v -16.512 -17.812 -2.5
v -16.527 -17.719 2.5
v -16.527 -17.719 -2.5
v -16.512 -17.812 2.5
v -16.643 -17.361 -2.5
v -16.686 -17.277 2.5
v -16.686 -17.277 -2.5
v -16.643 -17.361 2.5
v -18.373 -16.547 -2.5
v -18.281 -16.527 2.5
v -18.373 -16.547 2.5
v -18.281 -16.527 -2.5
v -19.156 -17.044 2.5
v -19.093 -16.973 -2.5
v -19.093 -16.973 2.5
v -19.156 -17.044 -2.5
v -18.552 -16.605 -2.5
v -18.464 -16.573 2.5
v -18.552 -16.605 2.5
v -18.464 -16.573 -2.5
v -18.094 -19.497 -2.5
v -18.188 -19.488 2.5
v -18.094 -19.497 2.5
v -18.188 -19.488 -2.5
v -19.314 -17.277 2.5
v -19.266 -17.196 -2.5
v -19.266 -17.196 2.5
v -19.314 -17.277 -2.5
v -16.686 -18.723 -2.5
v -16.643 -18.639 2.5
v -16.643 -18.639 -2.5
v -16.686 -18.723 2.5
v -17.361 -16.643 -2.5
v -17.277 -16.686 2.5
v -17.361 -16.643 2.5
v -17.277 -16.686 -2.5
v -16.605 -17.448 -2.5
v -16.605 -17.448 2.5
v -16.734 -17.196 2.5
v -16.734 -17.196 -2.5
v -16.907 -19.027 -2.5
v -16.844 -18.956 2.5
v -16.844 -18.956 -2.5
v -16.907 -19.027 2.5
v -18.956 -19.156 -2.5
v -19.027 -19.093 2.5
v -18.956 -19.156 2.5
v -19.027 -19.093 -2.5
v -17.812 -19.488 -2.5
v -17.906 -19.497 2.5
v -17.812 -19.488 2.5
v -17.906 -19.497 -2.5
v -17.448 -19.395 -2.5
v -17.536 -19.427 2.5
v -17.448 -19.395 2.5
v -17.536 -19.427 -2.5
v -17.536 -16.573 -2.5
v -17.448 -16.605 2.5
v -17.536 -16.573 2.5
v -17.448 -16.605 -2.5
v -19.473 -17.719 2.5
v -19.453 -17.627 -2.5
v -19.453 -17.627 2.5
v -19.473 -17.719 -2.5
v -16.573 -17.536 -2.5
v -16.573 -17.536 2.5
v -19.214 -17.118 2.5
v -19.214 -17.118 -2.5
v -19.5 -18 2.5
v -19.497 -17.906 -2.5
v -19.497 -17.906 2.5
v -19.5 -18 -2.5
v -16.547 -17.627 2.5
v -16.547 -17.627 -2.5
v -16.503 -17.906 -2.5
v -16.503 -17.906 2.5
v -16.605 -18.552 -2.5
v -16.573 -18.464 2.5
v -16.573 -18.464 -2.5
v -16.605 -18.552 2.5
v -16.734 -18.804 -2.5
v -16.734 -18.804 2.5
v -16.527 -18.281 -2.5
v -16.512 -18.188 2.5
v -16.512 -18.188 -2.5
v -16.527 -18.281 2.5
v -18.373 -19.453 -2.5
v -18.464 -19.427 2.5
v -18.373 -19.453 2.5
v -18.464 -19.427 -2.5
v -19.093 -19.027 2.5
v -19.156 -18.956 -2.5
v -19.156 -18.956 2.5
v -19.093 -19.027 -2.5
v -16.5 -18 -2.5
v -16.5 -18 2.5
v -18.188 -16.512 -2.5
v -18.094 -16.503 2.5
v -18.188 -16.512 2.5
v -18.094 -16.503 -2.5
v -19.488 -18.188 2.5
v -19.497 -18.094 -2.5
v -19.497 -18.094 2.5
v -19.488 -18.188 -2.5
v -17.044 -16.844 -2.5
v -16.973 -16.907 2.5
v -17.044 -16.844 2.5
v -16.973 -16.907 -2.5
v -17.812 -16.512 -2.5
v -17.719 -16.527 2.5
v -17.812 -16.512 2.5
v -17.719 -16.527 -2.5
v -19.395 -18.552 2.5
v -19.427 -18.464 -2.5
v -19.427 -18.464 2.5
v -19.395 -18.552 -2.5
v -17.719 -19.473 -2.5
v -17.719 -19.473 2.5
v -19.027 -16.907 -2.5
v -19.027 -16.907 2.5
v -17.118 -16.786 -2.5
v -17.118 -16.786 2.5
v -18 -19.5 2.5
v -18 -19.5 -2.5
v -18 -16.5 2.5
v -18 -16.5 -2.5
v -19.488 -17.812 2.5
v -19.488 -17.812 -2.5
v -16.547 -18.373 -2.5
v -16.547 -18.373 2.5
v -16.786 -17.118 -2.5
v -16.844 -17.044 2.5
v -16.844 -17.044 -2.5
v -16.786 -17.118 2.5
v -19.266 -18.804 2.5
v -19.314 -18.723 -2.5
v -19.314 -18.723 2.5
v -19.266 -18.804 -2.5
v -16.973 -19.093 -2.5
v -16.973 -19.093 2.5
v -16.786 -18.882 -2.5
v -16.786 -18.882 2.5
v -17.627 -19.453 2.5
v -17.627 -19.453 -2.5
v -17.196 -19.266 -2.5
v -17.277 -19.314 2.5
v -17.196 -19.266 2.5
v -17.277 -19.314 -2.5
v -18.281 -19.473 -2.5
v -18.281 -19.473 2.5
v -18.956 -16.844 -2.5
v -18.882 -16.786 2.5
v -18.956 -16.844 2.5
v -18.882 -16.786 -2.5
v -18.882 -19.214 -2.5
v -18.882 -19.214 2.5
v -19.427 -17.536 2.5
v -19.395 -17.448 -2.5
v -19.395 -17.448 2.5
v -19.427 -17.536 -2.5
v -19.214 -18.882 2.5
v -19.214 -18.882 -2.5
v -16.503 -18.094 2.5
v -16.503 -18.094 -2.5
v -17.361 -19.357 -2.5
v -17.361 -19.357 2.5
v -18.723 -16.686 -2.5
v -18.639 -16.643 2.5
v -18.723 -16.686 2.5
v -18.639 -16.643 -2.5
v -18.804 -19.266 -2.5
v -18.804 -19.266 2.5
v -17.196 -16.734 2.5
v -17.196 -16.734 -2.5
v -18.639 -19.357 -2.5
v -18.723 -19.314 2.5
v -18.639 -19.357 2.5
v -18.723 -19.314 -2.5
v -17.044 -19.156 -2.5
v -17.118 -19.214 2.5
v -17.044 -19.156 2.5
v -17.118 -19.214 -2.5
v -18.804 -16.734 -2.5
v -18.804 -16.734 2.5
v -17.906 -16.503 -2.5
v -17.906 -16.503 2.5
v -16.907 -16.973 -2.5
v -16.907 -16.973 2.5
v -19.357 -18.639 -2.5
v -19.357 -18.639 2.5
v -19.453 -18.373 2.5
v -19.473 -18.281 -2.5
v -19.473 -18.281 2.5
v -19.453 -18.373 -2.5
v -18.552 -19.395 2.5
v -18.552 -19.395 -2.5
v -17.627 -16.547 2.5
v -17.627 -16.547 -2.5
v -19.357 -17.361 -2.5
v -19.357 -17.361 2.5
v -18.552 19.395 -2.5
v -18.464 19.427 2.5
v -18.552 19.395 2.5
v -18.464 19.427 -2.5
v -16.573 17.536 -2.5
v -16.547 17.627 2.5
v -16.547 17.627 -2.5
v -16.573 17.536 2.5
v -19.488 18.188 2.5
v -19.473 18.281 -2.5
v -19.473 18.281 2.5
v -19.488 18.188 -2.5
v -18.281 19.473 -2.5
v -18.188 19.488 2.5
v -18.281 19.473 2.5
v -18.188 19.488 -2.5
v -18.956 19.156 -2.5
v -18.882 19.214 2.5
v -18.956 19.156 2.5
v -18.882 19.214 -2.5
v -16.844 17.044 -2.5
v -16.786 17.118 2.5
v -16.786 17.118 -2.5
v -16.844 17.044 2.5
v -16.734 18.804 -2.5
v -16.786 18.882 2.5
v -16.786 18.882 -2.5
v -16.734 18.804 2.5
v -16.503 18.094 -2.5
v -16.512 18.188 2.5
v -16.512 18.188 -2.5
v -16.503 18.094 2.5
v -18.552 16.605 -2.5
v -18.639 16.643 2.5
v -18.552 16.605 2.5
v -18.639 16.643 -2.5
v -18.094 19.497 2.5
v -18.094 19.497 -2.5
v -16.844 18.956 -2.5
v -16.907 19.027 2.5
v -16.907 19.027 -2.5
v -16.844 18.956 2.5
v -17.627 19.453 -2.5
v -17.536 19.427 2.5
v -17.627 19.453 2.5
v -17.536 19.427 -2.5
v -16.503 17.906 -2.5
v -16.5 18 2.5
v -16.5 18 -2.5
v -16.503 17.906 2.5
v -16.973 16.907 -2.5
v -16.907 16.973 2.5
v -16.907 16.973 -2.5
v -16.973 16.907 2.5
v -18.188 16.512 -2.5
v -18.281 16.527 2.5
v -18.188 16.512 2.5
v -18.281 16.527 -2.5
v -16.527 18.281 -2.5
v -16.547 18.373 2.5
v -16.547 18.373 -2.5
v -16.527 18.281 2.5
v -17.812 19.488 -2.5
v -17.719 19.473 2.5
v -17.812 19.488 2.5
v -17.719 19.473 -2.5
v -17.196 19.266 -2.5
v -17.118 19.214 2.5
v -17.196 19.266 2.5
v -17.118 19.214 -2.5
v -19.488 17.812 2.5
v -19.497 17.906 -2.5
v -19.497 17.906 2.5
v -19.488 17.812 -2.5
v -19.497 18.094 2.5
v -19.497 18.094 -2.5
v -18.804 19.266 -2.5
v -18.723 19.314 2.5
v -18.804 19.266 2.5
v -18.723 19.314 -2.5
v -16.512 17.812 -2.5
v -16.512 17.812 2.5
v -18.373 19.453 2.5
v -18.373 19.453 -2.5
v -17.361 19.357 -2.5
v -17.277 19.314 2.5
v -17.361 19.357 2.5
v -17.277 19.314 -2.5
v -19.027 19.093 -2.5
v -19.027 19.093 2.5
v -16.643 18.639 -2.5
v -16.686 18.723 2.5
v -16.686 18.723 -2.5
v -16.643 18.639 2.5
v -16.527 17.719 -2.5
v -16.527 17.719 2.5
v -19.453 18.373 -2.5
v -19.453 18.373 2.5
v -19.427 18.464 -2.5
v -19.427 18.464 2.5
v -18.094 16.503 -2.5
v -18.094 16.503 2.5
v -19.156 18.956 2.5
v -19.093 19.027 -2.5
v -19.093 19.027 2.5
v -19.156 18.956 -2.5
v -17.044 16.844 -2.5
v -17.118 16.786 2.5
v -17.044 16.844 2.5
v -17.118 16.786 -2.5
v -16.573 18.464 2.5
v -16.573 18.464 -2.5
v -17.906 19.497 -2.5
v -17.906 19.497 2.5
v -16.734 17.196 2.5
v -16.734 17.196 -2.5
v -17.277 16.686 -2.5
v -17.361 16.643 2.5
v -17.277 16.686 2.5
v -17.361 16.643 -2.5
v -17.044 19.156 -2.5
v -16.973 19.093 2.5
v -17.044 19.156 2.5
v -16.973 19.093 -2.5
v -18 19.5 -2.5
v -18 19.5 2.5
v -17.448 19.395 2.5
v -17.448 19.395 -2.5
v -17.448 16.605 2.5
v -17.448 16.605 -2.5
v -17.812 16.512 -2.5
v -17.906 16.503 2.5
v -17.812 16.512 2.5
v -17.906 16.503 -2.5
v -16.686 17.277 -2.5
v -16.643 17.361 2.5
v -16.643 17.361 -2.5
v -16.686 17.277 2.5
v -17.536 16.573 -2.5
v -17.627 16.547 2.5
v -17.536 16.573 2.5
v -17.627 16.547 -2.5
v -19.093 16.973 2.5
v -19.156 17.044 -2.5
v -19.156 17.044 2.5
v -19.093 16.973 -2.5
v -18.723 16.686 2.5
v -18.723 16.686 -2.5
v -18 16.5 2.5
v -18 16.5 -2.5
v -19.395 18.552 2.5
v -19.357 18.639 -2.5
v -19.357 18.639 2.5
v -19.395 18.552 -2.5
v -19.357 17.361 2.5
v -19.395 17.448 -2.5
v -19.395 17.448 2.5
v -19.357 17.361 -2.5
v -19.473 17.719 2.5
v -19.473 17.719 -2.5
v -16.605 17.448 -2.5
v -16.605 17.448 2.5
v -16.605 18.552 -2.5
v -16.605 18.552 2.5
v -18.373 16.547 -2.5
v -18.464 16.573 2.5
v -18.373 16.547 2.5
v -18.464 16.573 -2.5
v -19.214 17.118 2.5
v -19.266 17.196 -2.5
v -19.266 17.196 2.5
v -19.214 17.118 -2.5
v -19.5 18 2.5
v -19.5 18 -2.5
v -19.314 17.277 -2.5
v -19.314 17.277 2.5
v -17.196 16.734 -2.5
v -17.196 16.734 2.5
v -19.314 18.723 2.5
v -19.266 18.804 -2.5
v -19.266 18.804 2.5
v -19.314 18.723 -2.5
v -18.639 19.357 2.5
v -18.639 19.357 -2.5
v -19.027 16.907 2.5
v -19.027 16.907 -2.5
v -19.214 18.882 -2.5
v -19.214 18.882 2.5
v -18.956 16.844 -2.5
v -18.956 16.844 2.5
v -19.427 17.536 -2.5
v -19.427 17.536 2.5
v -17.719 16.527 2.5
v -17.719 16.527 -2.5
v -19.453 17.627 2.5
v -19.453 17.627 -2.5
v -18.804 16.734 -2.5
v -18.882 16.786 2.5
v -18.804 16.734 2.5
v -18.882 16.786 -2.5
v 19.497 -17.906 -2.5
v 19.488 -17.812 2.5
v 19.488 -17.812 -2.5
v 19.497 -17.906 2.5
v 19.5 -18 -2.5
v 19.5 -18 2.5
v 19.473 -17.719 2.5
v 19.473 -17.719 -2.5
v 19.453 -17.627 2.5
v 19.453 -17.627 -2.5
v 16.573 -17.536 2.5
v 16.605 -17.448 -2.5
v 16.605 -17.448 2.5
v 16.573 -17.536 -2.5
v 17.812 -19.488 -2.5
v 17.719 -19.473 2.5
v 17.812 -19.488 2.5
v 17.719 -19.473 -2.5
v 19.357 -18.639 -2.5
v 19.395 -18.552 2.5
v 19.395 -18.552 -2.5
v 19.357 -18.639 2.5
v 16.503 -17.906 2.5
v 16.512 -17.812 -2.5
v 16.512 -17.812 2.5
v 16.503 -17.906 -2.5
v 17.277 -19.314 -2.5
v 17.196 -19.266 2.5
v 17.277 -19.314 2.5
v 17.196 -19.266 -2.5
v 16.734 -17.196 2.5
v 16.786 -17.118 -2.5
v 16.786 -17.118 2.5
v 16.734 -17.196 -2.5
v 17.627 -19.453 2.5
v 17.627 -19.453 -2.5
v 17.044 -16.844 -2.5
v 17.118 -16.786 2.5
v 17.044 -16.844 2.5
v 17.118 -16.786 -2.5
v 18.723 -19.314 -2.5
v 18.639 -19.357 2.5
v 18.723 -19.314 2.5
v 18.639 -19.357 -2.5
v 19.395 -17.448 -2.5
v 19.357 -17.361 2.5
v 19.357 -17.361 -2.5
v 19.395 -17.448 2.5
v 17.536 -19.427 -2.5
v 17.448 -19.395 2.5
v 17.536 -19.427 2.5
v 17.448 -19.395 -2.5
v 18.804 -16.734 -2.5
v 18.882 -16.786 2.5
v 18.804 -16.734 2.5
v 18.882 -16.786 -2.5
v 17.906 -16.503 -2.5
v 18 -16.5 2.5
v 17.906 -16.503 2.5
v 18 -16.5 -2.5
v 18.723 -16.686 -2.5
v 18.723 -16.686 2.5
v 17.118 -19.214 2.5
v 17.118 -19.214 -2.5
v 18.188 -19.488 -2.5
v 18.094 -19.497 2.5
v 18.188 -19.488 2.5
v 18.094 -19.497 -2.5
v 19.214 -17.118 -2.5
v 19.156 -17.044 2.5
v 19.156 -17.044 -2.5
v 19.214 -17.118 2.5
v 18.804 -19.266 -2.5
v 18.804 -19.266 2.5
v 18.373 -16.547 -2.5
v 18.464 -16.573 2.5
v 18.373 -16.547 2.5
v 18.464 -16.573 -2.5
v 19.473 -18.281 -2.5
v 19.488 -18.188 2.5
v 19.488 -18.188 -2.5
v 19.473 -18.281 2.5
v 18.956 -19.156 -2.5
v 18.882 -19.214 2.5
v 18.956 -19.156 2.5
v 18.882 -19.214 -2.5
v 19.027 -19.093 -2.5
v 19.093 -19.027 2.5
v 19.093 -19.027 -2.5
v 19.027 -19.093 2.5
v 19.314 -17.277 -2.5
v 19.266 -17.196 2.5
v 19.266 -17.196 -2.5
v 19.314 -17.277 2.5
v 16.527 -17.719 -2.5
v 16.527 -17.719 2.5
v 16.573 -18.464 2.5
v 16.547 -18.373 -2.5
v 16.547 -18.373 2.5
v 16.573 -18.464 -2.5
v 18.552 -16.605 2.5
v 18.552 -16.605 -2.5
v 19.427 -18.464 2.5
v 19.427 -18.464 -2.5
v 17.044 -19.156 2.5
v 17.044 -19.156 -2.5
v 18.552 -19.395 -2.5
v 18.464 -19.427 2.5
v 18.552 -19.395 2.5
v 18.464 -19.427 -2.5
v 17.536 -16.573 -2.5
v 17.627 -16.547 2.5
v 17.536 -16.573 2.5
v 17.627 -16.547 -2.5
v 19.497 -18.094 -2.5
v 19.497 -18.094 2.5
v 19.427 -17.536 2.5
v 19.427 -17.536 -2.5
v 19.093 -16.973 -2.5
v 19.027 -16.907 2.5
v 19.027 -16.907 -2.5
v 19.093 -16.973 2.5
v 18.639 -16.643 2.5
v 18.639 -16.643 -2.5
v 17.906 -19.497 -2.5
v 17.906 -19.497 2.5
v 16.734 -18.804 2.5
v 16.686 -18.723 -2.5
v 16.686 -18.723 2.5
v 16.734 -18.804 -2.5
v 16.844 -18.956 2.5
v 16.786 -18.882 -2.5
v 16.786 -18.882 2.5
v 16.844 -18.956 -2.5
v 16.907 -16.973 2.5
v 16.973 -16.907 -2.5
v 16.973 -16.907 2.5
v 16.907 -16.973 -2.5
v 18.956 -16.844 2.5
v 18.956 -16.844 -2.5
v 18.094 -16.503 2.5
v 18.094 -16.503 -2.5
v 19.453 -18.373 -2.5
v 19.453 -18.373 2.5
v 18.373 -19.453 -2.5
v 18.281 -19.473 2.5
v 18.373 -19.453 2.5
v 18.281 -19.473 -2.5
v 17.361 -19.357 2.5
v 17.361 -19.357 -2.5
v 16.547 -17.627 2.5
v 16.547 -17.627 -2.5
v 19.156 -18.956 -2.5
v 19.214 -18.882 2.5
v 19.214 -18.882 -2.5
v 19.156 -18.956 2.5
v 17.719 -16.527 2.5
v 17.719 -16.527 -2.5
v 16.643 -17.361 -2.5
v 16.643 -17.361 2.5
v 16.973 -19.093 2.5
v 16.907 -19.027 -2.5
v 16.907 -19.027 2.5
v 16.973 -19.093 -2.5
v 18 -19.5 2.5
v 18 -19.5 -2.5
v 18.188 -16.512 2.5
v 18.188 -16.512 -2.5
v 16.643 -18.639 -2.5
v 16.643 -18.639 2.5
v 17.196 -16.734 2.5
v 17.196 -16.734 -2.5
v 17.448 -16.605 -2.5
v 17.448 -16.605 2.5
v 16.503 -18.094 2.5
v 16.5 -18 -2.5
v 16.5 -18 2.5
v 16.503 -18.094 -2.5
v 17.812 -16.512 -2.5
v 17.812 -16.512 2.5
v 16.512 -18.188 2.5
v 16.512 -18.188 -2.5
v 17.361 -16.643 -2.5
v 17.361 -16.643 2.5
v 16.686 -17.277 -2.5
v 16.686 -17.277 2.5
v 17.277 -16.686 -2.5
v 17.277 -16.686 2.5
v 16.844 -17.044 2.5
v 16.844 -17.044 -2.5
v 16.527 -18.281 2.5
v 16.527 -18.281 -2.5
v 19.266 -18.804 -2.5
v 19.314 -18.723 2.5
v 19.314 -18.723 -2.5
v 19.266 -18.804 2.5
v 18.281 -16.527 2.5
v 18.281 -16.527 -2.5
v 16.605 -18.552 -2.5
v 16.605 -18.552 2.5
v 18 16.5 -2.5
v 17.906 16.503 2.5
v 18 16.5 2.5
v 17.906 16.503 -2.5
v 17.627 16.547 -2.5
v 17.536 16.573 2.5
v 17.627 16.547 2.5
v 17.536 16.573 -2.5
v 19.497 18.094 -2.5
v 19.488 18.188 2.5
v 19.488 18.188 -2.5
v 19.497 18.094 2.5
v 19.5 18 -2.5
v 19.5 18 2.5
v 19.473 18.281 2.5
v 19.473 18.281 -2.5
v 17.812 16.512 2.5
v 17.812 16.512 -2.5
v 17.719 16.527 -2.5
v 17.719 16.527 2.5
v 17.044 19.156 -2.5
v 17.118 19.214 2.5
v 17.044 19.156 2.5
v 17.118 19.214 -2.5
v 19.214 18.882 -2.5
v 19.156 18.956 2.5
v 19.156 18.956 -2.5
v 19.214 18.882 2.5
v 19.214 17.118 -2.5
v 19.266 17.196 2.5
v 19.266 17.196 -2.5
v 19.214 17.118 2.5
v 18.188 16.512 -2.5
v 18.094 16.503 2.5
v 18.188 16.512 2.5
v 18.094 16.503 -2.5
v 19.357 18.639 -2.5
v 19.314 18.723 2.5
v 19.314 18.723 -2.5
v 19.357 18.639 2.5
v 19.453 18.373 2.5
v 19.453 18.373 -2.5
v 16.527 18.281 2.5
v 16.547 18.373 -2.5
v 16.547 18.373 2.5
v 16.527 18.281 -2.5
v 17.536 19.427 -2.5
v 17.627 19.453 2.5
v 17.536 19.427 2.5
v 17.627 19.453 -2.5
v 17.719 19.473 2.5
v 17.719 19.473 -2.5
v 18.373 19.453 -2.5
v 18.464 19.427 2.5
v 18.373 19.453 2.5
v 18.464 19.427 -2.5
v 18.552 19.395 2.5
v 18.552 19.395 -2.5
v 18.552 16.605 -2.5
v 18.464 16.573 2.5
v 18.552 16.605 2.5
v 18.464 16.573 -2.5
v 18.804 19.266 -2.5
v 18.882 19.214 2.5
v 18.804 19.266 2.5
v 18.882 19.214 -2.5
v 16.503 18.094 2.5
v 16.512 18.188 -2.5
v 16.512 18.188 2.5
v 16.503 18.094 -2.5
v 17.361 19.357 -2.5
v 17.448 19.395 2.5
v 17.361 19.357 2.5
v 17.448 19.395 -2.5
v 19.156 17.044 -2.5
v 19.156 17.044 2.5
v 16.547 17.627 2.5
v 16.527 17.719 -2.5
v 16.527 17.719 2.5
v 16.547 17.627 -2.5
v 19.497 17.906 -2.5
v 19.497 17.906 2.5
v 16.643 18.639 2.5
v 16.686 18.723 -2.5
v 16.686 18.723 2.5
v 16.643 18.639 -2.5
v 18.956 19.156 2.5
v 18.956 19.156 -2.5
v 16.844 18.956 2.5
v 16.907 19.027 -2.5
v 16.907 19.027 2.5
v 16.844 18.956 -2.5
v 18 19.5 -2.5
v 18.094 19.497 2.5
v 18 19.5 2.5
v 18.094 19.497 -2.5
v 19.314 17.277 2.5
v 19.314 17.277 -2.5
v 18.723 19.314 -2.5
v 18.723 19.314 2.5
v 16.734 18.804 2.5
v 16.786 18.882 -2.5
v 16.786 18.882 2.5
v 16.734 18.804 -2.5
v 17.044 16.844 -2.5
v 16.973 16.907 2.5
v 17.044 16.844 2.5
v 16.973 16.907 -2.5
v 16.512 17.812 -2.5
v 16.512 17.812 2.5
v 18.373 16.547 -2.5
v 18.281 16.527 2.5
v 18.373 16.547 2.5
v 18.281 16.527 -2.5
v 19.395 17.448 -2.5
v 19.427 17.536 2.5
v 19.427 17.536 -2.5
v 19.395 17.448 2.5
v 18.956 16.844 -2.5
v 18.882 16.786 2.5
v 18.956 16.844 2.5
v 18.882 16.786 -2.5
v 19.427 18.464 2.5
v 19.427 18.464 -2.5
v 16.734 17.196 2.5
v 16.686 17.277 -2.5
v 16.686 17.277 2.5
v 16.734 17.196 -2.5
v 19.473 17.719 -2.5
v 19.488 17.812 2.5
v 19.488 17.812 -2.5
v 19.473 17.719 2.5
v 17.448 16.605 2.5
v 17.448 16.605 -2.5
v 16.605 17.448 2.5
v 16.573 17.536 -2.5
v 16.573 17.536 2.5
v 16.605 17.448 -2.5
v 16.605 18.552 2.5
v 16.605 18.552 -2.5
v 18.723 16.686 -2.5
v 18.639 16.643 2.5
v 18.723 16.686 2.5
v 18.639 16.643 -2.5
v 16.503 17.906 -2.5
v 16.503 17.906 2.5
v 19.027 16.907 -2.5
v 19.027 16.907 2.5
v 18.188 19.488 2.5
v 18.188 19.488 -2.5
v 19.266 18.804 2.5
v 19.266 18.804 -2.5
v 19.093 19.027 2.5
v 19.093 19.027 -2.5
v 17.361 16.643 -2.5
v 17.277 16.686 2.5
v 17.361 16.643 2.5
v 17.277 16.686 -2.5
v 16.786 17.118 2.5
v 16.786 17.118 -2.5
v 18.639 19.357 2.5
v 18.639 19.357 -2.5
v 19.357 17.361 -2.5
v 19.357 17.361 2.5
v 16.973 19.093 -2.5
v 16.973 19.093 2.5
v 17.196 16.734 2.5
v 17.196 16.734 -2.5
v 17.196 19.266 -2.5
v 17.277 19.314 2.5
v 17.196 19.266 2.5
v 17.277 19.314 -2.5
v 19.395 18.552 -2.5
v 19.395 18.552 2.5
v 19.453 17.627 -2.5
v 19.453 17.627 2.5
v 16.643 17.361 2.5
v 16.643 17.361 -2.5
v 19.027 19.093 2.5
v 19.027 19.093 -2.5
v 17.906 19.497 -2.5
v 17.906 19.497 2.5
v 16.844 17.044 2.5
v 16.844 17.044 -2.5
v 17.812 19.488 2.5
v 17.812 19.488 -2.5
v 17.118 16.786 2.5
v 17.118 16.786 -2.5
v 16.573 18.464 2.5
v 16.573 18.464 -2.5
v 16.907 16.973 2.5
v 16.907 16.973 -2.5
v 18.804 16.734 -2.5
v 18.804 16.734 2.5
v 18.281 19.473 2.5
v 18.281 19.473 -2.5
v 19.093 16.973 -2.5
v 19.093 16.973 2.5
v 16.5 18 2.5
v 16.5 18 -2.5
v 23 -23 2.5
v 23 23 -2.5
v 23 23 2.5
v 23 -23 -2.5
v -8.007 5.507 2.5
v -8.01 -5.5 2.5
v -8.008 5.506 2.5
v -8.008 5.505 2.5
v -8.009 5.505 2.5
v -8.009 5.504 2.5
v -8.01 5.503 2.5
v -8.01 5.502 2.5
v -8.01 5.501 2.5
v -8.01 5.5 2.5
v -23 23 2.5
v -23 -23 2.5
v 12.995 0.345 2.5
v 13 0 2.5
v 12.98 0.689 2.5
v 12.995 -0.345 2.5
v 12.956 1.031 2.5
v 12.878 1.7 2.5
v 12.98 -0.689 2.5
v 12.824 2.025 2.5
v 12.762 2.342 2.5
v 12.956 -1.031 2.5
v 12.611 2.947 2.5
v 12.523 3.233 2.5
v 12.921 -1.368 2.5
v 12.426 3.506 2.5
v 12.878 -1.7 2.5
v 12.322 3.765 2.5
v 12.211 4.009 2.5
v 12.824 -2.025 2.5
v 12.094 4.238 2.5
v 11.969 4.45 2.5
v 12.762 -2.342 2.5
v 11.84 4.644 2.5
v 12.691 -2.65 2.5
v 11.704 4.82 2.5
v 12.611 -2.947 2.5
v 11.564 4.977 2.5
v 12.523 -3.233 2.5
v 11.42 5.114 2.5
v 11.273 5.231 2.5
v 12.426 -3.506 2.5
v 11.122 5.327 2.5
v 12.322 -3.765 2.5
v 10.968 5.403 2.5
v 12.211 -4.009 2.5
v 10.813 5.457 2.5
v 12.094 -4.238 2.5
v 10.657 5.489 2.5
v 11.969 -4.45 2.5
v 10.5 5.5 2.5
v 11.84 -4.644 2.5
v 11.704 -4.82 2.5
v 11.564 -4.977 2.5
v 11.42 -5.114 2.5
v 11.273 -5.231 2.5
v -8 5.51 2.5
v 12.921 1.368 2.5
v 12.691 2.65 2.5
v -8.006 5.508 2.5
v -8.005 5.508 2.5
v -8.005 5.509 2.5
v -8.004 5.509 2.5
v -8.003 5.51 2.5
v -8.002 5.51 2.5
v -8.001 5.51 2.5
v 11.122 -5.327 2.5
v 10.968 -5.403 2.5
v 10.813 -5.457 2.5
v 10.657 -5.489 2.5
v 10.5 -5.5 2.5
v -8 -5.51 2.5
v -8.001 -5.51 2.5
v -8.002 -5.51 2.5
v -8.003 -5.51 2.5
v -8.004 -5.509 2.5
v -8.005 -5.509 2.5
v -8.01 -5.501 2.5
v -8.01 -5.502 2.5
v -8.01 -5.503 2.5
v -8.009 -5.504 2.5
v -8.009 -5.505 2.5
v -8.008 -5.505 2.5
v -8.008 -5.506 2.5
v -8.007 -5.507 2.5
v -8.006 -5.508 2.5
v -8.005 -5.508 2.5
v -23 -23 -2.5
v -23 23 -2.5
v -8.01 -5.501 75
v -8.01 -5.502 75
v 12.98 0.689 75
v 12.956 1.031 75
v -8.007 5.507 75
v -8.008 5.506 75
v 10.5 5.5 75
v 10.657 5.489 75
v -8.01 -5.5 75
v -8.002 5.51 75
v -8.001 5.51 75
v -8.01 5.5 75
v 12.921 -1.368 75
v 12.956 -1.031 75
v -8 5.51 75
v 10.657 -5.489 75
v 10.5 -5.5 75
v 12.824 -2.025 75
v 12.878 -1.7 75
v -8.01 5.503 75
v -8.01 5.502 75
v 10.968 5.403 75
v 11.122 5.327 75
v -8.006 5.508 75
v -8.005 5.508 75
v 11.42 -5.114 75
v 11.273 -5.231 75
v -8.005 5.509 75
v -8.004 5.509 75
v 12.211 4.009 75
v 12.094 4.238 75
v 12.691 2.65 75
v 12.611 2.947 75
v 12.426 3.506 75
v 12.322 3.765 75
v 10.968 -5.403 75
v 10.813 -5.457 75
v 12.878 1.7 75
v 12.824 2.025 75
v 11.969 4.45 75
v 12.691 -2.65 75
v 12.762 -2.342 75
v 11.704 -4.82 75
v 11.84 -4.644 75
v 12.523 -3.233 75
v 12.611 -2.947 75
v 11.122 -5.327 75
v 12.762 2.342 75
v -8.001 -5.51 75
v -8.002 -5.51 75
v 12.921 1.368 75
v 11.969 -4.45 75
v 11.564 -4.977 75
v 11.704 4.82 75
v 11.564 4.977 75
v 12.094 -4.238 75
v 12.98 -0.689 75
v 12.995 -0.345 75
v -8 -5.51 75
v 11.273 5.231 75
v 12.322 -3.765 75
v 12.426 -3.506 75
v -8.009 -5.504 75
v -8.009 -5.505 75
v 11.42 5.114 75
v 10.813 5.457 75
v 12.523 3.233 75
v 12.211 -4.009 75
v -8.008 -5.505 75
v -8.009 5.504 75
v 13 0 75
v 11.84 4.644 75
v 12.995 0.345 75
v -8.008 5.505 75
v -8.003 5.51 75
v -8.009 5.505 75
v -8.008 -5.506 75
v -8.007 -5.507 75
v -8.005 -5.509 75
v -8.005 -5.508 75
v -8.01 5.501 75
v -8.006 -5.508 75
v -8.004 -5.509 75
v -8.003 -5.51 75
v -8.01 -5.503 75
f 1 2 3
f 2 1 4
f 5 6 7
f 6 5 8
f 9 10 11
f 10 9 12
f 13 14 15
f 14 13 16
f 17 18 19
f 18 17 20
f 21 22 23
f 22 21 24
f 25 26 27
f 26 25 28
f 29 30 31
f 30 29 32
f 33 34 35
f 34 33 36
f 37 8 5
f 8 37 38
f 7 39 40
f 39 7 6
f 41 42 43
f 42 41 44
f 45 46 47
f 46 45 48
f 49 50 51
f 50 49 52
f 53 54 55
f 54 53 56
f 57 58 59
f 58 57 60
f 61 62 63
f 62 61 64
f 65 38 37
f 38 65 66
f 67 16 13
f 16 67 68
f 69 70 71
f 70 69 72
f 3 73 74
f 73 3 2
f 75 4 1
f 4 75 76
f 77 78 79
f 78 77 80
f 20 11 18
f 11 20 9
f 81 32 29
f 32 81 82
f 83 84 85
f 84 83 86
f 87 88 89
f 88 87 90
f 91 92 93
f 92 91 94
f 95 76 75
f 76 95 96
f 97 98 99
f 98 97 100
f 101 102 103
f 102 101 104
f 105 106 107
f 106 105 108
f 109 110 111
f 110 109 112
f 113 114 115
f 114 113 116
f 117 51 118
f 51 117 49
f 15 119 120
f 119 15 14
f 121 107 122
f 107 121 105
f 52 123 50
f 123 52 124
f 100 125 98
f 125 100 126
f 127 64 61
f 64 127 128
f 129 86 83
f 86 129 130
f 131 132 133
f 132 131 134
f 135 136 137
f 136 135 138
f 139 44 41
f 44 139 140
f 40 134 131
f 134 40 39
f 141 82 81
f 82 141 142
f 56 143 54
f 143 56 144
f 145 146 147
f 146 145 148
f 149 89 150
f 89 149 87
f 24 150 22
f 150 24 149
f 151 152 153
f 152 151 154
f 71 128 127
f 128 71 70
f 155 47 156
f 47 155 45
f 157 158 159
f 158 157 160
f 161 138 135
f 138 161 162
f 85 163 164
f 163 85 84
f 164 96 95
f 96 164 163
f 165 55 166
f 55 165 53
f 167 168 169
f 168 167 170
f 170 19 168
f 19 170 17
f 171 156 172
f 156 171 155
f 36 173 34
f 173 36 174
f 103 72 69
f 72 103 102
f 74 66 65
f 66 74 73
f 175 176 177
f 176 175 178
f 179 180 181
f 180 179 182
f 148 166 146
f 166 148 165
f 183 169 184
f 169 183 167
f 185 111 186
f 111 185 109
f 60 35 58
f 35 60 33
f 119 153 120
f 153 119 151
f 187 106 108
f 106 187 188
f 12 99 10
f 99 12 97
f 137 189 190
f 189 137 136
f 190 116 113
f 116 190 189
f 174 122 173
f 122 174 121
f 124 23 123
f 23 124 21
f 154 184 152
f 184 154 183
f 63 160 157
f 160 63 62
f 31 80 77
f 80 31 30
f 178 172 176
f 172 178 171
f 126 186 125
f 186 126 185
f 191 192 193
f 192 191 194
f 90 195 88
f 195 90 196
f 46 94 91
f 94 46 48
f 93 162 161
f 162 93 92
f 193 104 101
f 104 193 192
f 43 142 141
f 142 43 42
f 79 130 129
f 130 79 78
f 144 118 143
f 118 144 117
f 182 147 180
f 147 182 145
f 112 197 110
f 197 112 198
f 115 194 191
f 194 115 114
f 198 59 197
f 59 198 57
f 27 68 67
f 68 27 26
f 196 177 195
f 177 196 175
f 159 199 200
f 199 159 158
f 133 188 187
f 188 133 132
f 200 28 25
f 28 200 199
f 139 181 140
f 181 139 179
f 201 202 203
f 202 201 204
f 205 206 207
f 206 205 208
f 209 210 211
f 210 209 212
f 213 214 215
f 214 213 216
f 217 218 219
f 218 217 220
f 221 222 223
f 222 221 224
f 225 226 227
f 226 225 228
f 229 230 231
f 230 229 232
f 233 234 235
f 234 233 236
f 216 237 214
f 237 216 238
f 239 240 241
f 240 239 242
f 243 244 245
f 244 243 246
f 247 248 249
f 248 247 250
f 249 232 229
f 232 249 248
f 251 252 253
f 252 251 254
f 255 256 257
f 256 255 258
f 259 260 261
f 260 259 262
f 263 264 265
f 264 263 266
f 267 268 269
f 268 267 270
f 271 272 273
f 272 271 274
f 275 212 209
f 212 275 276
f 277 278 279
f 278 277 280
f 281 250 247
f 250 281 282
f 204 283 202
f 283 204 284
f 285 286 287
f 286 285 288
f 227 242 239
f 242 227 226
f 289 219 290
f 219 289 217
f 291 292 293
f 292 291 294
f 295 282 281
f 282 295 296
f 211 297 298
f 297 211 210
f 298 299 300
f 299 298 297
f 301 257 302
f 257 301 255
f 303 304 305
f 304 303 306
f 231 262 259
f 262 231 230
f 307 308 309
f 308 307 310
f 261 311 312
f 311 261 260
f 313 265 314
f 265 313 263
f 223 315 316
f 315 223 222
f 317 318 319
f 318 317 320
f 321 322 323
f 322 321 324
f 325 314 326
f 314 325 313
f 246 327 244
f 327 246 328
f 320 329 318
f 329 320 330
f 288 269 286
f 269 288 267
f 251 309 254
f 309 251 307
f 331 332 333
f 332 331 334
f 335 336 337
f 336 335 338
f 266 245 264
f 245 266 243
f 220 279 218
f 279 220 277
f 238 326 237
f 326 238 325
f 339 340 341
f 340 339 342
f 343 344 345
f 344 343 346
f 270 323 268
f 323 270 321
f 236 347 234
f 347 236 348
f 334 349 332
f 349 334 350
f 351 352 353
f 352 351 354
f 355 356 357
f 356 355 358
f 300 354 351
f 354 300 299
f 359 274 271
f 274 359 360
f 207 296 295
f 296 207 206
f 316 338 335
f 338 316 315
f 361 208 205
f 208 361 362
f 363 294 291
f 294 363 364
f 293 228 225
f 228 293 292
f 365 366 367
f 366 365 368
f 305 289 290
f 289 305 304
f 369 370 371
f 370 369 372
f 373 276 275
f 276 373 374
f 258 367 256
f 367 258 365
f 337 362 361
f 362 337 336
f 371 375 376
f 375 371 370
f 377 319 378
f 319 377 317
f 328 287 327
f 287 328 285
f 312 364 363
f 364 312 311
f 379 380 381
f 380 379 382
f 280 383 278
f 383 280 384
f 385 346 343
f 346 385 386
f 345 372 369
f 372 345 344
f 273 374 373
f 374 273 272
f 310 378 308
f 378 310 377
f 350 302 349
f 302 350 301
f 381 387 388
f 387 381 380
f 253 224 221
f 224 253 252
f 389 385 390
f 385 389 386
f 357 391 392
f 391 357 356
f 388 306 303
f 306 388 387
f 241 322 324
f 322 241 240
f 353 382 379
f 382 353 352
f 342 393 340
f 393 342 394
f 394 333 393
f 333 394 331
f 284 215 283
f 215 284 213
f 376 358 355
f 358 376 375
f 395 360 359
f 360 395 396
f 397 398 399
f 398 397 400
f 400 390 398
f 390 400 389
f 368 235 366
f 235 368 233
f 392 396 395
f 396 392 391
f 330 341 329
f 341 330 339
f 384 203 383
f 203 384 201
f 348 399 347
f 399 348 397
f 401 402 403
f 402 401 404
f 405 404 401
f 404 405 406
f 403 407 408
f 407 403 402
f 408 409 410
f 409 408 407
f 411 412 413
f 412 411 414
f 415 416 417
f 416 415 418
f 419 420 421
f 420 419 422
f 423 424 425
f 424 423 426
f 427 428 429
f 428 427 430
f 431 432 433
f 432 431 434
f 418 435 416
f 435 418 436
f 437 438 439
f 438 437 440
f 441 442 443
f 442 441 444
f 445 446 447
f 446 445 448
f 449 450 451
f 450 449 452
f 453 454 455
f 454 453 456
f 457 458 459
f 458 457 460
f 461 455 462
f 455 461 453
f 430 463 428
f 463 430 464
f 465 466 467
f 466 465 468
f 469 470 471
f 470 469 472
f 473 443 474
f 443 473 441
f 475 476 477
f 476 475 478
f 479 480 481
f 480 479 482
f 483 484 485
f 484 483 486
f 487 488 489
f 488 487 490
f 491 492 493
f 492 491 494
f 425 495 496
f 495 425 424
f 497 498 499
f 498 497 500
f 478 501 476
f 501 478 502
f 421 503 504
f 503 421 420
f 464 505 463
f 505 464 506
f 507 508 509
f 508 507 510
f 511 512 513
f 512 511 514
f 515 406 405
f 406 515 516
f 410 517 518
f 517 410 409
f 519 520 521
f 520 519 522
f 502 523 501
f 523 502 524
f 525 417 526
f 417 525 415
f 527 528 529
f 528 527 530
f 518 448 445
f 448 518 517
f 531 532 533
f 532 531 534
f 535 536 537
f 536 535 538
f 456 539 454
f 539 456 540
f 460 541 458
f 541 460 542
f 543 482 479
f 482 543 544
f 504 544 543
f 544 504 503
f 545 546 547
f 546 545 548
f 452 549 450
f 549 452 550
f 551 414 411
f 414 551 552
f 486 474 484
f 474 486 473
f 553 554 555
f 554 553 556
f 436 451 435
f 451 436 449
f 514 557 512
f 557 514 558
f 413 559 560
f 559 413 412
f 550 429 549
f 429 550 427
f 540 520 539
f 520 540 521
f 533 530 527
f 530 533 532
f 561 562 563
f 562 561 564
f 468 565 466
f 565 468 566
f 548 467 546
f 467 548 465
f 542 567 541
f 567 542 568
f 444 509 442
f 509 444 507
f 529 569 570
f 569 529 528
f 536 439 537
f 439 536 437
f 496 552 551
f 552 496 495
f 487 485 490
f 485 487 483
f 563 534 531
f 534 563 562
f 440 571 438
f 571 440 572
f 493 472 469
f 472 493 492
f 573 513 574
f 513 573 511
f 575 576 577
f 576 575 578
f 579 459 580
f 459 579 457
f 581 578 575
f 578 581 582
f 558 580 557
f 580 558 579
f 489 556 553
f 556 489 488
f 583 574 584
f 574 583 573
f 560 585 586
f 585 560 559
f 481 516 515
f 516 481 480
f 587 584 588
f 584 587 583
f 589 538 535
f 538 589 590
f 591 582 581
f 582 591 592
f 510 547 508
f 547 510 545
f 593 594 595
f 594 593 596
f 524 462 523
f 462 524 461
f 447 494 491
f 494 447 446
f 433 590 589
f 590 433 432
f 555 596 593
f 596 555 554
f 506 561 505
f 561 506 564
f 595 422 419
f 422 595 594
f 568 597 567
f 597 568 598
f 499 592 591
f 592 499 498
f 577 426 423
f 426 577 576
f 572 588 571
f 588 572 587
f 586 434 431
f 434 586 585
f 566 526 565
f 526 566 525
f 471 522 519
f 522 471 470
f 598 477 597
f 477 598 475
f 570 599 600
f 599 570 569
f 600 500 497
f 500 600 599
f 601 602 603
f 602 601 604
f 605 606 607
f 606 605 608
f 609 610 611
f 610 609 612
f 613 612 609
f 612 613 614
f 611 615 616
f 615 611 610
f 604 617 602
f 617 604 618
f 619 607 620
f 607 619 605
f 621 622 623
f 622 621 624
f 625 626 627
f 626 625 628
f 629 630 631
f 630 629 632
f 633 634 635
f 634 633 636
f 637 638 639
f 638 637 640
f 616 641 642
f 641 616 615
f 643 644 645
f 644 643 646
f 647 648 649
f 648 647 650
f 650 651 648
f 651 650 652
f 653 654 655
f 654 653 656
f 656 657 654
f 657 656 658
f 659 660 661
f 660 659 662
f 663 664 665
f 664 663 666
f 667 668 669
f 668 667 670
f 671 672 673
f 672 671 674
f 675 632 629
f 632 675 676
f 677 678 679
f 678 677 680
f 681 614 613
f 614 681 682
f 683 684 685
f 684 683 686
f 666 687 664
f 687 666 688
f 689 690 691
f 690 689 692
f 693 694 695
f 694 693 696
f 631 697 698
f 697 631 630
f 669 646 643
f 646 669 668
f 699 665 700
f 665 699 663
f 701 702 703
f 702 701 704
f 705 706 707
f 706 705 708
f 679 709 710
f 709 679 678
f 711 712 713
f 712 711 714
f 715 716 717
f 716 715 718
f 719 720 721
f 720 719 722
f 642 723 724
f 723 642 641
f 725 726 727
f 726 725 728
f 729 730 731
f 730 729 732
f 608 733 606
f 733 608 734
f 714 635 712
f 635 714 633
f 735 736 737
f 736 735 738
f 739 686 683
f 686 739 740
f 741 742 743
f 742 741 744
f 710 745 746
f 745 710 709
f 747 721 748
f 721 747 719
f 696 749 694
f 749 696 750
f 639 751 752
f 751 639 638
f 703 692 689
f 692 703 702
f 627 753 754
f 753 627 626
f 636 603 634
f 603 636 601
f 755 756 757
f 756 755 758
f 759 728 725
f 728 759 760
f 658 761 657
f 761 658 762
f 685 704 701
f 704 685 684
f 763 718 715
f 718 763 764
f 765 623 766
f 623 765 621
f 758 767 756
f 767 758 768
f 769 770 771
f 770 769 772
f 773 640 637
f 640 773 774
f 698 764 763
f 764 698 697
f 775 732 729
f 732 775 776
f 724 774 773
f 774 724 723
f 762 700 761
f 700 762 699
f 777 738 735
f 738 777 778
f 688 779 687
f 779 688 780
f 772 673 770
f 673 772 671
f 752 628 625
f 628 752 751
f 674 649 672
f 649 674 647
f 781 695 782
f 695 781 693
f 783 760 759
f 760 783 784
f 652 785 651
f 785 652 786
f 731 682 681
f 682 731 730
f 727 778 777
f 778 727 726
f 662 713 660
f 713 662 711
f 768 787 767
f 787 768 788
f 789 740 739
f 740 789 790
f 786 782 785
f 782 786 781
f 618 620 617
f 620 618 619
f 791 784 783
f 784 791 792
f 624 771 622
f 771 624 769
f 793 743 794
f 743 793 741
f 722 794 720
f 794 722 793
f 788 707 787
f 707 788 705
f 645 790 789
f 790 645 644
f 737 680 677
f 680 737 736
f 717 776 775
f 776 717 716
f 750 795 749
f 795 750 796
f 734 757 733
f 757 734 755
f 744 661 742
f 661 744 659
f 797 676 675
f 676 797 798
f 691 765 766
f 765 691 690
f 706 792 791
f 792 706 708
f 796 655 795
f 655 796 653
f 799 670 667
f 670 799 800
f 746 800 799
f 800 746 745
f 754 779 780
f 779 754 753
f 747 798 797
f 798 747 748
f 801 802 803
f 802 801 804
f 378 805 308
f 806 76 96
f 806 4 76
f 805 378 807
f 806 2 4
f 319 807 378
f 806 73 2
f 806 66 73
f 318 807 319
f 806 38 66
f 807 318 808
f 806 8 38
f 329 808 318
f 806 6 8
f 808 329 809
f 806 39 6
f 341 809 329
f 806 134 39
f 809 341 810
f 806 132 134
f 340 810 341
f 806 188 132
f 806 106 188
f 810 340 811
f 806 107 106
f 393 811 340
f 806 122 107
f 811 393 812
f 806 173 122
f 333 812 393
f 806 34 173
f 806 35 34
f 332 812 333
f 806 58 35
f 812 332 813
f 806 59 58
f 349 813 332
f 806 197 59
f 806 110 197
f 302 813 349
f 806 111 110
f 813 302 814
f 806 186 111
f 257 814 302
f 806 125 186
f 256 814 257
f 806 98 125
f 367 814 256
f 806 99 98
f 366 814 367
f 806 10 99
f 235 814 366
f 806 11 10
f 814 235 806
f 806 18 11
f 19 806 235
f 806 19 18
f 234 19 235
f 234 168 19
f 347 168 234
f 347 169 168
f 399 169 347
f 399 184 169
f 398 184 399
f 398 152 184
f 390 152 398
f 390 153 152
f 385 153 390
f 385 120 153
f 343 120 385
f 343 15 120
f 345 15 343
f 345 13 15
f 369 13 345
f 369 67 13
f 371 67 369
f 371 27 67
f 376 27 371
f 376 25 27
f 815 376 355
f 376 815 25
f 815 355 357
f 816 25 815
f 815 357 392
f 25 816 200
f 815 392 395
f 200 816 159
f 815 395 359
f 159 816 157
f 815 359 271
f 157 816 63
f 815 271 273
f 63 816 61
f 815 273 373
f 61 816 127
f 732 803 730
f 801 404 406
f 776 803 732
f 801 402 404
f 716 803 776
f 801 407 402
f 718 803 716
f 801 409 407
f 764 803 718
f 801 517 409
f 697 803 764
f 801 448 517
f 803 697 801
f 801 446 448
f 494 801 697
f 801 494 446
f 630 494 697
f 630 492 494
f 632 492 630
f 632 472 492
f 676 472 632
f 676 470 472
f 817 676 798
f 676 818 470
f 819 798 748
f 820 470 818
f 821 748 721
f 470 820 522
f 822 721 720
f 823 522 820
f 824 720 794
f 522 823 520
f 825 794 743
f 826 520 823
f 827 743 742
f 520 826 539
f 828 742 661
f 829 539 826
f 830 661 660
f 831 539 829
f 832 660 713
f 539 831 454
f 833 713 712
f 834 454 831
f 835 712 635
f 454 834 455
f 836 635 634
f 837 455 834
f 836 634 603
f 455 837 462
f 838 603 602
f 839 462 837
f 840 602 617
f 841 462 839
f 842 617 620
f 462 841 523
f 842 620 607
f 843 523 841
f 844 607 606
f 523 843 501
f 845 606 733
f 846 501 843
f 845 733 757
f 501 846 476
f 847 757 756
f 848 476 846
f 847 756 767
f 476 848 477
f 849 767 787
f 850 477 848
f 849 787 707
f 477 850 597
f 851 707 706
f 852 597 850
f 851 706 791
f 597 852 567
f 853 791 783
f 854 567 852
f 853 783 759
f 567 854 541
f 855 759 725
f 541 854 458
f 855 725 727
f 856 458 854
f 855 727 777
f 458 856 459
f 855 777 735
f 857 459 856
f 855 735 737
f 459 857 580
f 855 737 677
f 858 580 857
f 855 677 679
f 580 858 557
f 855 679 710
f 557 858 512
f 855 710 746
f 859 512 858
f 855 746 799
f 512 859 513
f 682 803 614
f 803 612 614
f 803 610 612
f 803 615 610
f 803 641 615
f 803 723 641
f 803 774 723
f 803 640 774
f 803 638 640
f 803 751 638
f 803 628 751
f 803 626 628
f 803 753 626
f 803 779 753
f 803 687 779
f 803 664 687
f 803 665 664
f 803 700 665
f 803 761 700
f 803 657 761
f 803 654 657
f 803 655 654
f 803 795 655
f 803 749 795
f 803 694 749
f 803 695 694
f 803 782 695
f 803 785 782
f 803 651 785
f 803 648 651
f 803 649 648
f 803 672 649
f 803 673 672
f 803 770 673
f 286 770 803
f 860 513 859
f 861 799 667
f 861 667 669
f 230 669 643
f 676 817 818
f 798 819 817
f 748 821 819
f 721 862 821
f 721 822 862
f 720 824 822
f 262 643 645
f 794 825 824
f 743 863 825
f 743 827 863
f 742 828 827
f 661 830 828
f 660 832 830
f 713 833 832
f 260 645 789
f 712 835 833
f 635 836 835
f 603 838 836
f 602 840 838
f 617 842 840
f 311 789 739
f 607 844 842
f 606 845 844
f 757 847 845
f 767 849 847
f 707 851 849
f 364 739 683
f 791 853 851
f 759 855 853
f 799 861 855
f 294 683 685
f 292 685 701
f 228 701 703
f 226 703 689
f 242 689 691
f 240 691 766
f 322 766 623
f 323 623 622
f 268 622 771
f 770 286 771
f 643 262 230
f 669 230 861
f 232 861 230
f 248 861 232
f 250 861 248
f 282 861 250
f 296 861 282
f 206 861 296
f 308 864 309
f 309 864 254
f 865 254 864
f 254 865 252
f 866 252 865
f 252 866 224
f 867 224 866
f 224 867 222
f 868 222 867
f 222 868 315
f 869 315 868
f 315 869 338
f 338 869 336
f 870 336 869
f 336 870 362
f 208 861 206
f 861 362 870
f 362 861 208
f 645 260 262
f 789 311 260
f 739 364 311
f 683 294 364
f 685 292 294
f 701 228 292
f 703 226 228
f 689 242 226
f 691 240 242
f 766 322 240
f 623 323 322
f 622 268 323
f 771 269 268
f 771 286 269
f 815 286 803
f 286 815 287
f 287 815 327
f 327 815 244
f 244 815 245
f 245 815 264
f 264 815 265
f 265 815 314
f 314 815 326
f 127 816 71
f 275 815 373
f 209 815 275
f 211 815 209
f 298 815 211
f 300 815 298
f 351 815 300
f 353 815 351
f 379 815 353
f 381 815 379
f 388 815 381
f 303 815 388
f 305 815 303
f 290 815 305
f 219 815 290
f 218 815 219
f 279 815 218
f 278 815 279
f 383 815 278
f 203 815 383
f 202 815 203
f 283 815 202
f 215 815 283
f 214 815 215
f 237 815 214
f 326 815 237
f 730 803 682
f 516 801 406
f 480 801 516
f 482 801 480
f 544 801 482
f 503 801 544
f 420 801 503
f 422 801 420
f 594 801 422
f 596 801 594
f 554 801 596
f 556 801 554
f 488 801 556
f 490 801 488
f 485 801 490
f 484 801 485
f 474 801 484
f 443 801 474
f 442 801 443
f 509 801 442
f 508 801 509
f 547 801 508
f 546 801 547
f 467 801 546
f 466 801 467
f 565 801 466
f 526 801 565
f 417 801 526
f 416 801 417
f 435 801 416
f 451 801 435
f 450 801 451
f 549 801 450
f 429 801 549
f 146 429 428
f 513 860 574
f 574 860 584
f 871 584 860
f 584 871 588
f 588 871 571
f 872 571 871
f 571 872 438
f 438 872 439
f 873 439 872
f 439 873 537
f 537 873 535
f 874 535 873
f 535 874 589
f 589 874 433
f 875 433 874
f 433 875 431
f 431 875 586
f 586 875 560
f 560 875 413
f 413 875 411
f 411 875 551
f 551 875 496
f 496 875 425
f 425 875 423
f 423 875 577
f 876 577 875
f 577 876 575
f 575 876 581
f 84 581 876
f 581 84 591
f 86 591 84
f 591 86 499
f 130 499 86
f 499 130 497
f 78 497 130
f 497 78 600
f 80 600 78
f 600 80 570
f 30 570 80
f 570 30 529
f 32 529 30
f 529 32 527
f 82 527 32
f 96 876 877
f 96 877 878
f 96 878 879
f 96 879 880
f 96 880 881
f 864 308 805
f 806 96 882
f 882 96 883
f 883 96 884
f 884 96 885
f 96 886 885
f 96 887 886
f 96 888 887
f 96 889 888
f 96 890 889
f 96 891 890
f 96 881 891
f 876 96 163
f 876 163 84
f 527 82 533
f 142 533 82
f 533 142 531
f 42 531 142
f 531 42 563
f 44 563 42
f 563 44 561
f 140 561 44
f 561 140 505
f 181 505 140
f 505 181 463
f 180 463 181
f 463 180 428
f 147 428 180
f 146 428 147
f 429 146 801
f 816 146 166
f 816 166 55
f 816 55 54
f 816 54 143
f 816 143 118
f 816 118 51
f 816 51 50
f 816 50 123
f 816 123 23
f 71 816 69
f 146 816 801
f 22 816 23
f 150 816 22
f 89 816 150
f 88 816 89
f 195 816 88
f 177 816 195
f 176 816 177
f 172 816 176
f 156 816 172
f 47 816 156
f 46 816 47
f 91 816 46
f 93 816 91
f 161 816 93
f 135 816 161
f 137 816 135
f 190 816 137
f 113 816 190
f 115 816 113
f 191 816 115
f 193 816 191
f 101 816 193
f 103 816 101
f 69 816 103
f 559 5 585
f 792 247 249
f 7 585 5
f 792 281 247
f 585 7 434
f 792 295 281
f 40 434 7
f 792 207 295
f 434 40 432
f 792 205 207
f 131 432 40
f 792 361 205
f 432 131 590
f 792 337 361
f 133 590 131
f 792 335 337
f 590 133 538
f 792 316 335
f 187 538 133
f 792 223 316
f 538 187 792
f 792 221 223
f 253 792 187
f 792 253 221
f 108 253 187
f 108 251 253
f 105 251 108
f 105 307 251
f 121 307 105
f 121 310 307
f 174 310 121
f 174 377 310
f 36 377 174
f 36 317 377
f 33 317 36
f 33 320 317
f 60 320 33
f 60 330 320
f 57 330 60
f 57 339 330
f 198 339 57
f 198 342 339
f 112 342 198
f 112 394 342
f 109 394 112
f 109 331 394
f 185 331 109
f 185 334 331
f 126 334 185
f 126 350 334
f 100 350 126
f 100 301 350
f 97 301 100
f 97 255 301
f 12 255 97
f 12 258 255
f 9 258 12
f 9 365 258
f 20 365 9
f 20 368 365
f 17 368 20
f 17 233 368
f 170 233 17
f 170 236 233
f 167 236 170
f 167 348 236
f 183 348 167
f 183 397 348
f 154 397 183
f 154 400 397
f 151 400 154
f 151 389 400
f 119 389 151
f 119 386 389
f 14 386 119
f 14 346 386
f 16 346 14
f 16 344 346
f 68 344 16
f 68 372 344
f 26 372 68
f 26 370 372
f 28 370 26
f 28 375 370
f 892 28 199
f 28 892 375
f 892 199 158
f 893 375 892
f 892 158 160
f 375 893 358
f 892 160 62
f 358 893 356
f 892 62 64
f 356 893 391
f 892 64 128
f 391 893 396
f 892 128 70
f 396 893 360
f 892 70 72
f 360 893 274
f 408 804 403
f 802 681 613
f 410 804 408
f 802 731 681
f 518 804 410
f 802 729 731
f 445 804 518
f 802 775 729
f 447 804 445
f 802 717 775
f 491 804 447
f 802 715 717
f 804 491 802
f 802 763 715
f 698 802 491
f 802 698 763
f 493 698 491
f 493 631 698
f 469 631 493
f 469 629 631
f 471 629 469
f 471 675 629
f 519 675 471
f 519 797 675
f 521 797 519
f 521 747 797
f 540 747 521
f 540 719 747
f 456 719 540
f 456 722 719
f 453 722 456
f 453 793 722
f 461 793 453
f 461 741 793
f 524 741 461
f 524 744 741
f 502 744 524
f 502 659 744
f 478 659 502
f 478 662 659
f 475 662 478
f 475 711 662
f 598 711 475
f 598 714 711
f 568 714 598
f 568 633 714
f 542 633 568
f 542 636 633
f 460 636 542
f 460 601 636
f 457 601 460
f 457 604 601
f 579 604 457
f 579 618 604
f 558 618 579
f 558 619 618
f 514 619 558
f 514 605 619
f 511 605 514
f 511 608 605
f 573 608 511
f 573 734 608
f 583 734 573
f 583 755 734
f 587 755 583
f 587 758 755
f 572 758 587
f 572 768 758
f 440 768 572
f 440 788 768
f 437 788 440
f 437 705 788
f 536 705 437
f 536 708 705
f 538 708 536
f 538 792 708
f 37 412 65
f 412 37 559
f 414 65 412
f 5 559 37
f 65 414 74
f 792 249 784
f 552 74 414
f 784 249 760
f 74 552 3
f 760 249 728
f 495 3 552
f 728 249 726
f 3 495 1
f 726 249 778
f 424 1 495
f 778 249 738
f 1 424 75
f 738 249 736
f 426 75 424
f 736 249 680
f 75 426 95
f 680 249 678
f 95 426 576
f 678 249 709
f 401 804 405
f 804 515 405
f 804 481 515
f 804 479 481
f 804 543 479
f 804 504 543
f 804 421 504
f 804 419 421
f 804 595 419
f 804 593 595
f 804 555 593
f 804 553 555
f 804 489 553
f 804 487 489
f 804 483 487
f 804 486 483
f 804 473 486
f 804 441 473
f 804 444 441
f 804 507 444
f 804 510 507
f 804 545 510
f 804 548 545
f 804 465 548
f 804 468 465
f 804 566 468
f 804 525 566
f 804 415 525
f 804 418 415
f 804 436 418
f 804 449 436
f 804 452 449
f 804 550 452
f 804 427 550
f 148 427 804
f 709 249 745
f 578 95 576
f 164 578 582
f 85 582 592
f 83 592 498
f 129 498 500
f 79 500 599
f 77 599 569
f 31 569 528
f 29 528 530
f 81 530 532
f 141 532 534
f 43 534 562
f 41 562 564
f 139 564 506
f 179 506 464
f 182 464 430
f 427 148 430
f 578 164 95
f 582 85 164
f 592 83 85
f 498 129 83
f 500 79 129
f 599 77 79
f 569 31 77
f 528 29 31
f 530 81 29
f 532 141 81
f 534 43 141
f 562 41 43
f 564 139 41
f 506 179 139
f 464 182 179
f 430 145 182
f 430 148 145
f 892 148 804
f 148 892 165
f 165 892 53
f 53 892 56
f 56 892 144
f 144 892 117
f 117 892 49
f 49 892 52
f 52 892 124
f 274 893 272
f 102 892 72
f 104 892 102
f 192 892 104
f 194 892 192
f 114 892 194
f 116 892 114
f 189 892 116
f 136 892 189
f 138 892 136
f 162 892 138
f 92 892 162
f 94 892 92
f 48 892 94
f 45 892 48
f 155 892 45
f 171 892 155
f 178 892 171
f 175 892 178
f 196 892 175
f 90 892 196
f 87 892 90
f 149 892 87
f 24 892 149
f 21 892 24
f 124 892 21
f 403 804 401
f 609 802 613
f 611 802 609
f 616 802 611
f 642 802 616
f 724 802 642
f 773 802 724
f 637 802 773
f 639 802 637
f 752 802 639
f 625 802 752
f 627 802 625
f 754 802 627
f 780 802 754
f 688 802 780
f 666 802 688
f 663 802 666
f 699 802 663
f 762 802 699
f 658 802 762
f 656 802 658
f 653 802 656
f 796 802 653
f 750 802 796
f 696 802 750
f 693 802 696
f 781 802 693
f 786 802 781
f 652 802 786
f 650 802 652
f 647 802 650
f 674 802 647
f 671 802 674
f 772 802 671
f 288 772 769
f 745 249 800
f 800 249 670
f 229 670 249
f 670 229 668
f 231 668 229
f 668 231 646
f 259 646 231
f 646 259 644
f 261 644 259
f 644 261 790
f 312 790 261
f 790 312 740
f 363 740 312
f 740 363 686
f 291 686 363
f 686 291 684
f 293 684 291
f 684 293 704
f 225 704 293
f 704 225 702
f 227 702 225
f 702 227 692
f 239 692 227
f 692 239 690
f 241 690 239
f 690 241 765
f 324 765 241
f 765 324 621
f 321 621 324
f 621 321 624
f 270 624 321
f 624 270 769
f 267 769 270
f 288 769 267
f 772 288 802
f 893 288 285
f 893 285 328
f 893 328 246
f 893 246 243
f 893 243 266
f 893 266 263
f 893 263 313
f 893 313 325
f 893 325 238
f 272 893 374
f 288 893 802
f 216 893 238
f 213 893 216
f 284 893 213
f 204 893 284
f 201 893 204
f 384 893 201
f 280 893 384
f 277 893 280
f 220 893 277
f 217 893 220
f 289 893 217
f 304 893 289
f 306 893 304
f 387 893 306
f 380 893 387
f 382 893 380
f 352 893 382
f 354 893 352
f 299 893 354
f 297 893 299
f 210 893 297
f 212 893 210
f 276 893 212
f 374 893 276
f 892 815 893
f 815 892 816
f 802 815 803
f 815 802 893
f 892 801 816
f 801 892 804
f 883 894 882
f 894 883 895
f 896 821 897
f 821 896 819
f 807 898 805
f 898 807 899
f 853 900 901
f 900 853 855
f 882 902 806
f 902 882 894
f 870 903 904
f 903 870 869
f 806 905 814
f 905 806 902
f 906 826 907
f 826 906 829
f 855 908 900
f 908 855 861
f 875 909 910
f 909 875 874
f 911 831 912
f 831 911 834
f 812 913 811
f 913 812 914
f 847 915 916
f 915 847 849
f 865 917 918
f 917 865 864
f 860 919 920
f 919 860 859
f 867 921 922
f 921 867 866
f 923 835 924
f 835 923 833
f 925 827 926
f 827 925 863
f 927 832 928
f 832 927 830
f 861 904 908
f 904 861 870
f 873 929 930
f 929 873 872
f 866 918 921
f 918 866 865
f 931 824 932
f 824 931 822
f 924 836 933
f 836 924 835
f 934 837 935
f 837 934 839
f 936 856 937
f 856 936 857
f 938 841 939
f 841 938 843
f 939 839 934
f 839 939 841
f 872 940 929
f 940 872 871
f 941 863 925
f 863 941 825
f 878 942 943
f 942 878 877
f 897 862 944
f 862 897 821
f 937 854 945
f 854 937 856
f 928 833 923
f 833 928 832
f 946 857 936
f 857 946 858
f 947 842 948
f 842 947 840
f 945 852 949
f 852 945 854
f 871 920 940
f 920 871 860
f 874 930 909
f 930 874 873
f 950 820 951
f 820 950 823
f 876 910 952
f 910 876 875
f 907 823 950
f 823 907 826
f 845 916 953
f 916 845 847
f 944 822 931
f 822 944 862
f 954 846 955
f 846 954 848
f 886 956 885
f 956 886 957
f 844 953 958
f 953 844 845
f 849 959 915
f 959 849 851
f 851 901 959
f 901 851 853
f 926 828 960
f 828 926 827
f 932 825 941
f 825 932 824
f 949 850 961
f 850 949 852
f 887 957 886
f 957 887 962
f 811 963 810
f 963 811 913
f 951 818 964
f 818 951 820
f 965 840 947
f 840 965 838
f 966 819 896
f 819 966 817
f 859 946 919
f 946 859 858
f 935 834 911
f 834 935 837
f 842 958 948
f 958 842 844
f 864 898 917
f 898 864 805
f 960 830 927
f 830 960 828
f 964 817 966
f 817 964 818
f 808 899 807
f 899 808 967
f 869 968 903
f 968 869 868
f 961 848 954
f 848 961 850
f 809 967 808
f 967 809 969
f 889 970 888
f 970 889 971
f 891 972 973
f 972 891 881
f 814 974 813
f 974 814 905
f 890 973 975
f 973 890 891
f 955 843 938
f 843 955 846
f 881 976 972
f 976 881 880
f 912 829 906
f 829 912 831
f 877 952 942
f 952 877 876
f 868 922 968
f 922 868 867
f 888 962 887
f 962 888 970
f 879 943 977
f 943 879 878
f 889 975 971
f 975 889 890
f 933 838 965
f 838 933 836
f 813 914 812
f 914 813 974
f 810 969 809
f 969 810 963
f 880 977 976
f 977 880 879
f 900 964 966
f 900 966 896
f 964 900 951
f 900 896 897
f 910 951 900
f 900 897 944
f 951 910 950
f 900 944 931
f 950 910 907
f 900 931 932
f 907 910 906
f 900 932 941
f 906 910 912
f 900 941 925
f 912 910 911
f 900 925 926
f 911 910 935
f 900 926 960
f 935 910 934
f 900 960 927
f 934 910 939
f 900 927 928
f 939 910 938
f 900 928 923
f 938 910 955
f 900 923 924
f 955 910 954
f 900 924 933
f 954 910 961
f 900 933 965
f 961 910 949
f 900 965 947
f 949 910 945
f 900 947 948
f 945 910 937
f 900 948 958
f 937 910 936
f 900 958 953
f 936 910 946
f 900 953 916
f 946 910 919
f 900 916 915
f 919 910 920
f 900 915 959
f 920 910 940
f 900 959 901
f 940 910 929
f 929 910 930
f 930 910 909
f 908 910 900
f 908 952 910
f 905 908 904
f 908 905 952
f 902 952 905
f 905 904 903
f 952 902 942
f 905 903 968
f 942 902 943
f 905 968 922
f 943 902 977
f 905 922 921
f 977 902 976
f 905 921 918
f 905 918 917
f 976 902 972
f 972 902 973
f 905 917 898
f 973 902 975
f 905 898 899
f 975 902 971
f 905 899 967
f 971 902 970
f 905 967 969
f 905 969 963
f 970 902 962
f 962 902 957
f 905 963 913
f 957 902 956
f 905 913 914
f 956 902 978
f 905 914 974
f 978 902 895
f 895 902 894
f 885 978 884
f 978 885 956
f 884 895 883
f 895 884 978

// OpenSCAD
$fn = 100;

// Parameters for the triangular column
side_length = 20.5;
radius = 4.25;
height = 75;

// Calculate height of the equilateral triangle
h = side_length * sqrt(3) / 2;

// Adjusted positions for circle centers
center1 = [0, h/2 - radius];
center2 = [-6, -h/2 + radius];
center3 = [6, -h/2 + radius];

// Parameters for the tabletop
table_thickness = 5;
hole_spacing = 36; // Adjusted hole spacing
edge_distance = 5;
screw_hole_diameter = 3;
table_side = hole_spacing + 2 * edge_distance;

// Parameters for rounded_triangle
total_length = 18.5; 
ellipse_protrusion = 2.5;
flat_side = total_length - ellipse_protrusion;

module rounded_triangle() {
    // Define the rectangle's left corners
    corner1 = [-flat_side/2, -11/2];
    corner2 = [-flat_side/2, 11/2];

    // Define the center point for the ellipse on the right side
    ellipse_center = [flat_side/2, 0];

    // Use hull() to create the shape with the ellipse for one side
    hull() {
        translate(corner1) circle(0.01); 
        translate(corner2) circle(0.01);  
        translate(ellipse_center + [ellipse_protrusion, 0]) scale([ellipse_protrusion, 11/2]) circle(1); 
    }
}

module tabletop(){
    difference() {
        cube([table_side, table_side, table_thickness], center=true);
        for (i = [-1, 1]) {
            for (j = [-1, 1]) {
                translate([(i * hole_spacing / 2), (j * hole_spacing / 2), table_thickness / 2])  
                cylinder(r=screw_hole_diameter/2, h=100, center=true);
            }
        }
    }
}

union() {
    linear_extrude(height)
    rounded_triangle();
    translate([0, 0, height]);
    tabletop();
}
